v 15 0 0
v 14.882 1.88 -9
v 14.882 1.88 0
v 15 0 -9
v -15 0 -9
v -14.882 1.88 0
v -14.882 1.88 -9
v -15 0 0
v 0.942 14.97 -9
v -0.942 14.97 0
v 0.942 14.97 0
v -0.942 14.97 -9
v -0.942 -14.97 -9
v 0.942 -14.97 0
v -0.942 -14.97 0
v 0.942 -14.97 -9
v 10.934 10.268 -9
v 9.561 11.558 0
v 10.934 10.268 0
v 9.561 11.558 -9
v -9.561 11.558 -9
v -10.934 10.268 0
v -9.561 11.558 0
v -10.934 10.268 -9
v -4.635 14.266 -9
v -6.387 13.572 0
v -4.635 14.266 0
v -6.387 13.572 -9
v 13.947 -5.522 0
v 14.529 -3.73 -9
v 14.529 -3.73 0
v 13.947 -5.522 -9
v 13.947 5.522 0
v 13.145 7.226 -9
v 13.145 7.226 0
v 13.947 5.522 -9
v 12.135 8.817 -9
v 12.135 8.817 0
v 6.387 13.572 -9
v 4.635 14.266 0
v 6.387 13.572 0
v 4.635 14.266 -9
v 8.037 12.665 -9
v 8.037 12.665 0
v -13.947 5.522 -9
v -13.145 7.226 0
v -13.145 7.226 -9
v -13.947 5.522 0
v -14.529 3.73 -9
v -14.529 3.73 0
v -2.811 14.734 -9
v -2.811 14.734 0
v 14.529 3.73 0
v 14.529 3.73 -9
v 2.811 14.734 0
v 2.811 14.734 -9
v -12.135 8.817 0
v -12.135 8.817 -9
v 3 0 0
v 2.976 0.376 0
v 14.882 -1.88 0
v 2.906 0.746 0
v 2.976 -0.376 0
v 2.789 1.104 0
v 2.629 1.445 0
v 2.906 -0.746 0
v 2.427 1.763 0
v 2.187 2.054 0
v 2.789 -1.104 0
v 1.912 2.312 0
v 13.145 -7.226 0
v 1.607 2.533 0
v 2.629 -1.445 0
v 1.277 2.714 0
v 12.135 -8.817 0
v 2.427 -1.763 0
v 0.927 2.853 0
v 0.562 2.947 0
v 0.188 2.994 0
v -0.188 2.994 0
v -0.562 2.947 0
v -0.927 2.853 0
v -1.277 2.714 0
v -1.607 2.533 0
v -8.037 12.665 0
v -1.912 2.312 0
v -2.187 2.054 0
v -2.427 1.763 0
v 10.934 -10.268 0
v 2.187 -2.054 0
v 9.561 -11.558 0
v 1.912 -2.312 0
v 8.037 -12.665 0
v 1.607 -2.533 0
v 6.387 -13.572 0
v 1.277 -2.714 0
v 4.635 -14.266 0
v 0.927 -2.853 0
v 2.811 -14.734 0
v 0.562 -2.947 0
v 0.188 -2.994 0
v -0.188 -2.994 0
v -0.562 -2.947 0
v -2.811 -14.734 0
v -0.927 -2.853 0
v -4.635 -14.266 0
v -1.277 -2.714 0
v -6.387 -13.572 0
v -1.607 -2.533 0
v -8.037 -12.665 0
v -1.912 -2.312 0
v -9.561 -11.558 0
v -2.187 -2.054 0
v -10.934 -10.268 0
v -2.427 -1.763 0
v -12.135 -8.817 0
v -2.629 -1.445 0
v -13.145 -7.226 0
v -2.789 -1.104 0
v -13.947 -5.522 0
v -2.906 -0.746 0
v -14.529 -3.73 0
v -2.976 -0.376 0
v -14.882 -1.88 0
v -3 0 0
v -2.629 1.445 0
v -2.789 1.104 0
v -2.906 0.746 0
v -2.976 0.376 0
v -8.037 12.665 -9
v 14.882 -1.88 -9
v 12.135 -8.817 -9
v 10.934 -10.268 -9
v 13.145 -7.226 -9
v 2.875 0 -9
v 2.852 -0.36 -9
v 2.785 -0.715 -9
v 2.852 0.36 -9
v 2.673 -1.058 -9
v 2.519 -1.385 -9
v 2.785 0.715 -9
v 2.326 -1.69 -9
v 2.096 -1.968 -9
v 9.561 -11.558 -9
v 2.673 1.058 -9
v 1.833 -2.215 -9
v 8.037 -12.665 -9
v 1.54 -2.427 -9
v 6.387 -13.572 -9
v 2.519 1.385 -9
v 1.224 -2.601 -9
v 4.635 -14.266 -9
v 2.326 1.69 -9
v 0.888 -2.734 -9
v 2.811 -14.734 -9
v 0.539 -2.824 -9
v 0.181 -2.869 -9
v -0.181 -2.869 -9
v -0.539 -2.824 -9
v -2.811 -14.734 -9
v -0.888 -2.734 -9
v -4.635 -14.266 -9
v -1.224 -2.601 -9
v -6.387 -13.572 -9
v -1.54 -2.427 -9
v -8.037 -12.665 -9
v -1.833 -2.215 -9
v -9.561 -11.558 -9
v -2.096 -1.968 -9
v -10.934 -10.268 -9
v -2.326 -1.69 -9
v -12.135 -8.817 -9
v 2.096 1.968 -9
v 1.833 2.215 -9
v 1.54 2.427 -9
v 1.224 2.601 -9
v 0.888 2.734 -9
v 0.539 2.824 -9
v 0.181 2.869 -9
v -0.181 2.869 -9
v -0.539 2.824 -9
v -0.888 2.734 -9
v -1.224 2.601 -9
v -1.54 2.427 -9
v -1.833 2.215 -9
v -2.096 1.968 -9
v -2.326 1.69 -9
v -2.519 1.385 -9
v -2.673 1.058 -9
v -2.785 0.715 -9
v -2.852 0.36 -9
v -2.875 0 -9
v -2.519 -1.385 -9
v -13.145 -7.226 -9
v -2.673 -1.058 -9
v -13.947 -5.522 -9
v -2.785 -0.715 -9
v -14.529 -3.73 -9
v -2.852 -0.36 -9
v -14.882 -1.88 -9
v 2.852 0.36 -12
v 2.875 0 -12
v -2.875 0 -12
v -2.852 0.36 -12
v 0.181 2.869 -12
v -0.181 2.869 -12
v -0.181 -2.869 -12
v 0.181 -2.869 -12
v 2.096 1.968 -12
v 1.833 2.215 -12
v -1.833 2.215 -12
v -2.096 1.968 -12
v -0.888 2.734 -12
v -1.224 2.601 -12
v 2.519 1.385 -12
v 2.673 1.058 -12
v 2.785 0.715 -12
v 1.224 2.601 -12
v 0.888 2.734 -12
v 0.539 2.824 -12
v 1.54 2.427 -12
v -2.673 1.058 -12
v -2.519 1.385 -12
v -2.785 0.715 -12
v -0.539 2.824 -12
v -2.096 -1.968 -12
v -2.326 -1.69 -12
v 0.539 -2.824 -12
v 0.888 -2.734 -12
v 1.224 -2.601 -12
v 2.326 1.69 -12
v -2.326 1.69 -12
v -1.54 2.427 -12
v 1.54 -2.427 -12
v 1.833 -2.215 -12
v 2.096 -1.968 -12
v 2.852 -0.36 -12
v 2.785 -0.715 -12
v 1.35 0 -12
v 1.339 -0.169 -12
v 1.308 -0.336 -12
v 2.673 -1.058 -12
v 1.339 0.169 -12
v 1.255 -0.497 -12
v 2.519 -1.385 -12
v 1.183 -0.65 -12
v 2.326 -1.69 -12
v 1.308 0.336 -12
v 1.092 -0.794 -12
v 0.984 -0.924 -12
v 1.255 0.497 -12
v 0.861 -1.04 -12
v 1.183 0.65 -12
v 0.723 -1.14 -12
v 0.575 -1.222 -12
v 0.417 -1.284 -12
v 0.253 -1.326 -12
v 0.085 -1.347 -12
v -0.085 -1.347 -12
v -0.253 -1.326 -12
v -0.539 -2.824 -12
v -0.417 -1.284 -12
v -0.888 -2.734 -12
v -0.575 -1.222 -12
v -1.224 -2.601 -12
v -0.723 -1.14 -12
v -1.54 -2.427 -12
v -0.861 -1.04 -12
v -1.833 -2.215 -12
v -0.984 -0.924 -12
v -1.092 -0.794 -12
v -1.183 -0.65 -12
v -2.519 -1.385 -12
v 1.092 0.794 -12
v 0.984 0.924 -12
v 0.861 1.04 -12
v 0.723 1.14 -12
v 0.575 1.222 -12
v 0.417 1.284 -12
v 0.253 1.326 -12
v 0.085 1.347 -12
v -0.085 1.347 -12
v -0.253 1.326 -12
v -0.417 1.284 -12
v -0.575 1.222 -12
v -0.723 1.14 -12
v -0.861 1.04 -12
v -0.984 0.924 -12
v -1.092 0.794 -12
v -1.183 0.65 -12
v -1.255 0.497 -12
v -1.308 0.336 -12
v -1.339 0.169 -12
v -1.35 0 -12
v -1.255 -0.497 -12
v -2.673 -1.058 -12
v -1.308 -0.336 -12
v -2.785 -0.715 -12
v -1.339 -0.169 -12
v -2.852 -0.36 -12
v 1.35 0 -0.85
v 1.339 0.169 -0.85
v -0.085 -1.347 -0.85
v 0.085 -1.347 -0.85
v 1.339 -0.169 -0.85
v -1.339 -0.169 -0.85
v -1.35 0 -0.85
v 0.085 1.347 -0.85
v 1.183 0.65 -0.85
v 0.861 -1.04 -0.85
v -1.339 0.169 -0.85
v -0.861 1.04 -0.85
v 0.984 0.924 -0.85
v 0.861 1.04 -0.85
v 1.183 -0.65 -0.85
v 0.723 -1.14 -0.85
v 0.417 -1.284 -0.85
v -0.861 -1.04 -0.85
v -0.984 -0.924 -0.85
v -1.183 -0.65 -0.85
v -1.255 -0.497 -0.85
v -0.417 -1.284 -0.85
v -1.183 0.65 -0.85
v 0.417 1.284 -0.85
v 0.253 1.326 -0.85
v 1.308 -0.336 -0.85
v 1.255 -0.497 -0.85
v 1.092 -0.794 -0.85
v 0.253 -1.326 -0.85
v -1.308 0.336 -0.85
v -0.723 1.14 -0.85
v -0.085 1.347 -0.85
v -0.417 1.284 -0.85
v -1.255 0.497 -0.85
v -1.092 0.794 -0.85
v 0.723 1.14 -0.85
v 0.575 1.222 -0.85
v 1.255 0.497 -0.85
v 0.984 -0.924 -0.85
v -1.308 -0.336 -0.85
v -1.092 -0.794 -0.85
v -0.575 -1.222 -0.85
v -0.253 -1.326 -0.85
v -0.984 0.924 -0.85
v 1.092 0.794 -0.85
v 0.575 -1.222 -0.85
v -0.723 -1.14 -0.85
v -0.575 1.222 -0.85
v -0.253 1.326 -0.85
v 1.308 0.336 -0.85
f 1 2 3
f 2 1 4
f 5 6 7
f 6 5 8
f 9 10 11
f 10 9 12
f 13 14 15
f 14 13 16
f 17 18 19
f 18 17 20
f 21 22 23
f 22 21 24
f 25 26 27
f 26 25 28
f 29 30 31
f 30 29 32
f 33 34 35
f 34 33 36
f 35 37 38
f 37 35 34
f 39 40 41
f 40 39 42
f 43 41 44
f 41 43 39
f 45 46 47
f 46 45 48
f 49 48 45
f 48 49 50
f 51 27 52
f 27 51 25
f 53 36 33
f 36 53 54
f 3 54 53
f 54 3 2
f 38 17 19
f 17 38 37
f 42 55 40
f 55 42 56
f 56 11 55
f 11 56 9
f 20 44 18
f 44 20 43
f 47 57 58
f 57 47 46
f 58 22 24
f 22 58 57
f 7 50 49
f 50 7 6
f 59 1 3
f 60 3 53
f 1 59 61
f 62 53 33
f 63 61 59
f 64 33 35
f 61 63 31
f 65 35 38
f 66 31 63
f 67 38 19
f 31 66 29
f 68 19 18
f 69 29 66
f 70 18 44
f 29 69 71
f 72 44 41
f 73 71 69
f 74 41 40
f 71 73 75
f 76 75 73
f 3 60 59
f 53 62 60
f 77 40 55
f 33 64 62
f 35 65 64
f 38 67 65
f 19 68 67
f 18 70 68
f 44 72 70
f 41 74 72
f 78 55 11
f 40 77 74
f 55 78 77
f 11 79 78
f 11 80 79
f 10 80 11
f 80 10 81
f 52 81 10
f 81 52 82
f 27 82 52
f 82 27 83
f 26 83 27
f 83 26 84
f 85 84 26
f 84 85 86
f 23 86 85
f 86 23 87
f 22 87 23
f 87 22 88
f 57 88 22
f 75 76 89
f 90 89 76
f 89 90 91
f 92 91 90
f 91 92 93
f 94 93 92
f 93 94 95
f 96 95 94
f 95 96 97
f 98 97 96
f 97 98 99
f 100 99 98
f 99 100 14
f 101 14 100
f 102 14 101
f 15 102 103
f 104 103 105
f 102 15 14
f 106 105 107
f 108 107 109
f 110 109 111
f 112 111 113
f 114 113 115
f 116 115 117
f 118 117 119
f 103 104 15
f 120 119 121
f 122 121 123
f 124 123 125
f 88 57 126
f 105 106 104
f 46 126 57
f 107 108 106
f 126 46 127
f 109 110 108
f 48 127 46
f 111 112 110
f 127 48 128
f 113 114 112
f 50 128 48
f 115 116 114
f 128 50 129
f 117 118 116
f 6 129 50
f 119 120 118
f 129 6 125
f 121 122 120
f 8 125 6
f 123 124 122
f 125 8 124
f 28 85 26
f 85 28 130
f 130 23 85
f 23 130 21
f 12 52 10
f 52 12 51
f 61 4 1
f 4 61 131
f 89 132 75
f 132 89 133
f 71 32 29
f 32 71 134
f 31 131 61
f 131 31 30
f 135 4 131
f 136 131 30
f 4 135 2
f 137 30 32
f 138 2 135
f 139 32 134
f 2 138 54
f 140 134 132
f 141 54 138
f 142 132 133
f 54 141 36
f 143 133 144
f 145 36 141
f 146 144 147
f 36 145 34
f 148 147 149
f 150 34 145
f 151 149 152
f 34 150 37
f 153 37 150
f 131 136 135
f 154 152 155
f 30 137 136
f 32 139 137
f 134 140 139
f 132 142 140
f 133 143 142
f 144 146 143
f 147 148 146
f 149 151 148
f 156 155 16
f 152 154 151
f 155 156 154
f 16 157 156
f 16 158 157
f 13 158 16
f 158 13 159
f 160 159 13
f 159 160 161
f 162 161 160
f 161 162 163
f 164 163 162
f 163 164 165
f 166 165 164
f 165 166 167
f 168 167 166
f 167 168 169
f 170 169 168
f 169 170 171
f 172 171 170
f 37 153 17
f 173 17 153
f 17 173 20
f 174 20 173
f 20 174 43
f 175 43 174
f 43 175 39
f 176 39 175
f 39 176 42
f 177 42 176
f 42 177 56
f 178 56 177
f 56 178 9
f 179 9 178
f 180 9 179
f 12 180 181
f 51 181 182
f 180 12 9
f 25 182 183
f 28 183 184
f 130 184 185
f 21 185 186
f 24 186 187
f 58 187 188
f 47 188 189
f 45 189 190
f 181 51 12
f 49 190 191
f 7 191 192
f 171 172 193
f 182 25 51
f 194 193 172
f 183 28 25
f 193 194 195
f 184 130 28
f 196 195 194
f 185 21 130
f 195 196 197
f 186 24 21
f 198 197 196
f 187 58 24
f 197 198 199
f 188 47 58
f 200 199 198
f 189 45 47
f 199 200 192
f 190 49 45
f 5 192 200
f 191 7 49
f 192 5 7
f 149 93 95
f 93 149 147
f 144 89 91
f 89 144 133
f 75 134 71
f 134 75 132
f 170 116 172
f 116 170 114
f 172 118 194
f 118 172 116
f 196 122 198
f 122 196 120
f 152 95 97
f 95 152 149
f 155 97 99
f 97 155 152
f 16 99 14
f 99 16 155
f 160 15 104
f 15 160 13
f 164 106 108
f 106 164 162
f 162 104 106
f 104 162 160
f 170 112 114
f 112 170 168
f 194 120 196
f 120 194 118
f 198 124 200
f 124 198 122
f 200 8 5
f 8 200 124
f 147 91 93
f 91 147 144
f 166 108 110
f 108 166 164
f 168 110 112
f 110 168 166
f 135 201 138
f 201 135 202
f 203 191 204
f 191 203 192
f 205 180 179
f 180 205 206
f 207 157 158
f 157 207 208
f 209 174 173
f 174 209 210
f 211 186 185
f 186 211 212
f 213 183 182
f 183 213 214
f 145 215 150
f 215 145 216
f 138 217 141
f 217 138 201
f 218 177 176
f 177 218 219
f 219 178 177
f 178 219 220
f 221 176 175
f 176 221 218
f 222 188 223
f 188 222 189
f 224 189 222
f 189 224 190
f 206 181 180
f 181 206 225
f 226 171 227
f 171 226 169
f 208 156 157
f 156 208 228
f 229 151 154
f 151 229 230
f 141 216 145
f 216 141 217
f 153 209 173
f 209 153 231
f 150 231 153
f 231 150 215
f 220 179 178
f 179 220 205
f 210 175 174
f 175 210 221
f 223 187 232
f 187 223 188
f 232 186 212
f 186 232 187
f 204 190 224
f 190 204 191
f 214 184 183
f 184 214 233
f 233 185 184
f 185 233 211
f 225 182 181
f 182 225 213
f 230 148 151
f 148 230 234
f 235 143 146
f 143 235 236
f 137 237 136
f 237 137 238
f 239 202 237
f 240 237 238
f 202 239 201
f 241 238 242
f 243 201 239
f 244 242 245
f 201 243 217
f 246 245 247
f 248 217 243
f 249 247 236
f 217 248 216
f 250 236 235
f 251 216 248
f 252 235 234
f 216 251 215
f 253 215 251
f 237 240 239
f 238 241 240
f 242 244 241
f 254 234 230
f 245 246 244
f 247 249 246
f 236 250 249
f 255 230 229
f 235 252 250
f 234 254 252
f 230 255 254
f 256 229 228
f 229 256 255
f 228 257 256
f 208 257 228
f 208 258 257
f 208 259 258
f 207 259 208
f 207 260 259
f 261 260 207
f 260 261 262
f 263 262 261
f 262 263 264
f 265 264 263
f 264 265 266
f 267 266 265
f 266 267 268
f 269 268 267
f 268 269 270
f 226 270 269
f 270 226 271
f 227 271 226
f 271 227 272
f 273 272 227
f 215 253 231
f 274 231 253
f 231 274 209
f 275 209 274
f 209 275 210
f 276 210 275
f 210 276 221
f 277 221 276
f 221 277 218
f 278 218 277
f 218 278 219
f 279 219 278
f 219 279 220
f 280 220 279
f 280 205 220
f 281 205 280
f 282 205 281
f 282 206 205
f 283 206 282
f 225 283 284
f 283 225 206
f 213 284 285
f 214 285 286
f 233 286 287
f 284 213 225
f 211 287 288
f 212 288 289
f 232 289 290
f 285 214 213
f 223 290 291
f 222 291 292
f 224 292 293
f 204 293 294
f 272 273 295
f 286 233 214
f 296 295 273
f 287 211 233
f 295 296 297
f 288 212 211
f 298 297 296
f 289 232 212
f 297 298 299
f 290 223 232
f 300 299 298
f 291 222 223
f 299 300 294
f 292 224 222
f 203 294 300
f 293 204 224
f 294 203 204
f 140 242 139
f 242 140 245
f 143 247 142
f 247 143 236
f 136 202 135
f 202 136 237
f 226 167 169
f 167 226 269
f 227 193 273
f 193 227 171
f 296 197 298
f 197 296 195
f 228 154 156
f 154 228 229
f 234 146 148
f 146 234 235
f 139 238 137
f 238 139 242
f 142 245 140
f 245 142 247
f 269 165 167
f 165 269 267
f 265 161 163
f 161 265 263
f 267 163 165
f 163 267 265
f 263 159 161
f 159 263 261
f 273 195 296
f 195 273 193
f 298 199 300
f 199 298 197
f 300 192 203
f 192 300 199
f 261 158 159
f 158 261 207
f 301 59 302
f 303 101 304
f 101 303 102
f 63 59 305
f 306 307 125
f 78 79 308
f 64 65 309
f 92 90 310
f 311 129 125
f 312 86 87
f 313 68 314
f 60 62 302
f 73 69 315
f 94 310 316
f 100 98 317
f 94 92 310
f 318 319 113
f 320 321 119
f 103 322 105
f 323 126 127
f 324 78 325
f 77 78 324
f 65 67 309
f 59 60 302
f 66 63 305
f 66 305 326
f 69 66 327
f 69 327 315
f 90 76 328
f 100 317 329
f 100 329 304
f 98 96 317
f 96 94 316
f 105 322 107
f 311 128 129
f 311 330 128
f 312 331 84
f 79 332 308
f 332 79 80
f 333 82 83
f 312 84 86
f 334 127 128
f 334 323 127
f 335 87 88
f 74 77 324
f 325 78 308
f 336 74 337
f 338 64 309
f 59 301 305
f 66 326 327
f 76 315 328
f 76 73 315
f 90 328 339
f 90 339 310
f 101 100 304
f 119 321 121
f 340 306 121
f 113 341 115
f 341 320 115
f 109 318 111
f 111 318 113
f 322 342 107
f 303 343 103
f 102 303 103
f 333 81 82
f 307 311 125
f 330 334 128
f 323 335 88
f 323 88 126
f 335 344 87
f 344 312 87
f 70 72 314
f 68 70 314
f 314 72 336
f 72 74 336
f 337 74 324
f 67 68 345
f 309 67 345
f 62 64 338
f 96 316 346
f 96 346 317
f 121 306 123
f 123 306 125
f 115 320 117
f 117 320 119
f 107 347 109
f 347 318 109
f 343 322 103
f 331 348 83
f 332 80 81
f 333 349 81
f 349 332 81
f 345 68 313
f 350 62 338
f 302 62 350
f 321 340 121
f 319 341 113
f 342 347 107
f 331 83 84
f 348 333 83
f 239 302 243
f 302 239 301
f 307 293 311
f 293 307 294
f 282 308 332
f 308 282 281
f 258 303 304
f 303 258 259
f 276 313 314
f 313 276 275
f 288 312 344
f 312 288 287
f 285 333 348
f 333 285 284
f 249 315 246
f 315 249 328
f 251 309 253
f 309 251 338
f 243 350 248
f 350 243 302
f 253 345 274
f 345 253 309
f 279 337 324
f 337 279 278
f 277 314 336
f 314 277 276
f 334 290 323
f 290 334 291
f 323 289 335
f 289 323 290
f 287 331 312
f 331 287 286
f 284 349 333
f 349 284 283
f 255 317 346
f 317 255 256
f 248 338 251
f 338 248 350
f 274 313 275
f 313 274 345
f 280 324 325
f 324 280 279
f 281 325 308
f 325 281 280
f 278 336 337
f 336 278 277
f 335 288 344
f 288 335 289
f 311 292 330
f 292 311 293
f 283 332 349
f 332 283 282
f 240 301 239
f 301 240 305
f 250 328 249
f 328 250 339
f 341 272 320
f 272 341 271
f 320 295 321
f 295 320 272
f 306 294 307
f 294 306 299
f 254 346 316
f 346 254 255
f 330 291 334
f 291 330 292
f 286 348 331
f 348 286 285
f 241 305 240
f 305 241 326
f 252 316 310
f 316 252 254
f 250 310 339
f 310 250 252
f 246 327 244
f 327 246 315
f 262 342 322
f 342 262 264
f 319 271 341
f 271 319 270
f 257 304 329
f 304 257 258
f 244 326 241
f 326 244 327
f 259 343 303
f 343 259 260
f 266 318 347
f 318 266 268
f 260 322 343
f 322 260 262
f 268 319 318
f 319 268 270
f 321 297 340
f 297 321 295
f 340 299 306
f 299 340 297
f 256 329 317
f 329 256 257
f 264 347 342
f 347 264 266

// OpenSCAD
$fn = 50;


difference() {
	union() {
		translate(v = [0, 0, -9.0000000000]) {
			cylinder(h = 9, r = 15.0000000000);
		}
		translate(v = [0, 0, -12.0000000000]) {
			cylinder(h = 12, r = 2.8750000000);
		}
	}
	union() {
		translate(v = [0, 0, 0]) {
			rotate(a = [0, 0, 0]) {
				difference() {
					union() {
						translate(v = [0, 0, -12.0000000000]) {
							cylinder(h = 12, r = 1.0000000000);
						}
						translate(v = [0, 0, -0.8500000000]) {
							cylinder(h = 0.8500000000, r1 = 1.3500000000, r2 = 3.0000000000);
						}
						translate(v = [0, 0, -12.0000000000]) {
							cylinder(h = 12, r = 1.3500000000);
						}
						translate(v = [0, 0, -12.0000000000]) {
							cylinder(h = 12, r = 1.0000000000);
						}
					}
					union();
				}
			}
		}
	}
}
